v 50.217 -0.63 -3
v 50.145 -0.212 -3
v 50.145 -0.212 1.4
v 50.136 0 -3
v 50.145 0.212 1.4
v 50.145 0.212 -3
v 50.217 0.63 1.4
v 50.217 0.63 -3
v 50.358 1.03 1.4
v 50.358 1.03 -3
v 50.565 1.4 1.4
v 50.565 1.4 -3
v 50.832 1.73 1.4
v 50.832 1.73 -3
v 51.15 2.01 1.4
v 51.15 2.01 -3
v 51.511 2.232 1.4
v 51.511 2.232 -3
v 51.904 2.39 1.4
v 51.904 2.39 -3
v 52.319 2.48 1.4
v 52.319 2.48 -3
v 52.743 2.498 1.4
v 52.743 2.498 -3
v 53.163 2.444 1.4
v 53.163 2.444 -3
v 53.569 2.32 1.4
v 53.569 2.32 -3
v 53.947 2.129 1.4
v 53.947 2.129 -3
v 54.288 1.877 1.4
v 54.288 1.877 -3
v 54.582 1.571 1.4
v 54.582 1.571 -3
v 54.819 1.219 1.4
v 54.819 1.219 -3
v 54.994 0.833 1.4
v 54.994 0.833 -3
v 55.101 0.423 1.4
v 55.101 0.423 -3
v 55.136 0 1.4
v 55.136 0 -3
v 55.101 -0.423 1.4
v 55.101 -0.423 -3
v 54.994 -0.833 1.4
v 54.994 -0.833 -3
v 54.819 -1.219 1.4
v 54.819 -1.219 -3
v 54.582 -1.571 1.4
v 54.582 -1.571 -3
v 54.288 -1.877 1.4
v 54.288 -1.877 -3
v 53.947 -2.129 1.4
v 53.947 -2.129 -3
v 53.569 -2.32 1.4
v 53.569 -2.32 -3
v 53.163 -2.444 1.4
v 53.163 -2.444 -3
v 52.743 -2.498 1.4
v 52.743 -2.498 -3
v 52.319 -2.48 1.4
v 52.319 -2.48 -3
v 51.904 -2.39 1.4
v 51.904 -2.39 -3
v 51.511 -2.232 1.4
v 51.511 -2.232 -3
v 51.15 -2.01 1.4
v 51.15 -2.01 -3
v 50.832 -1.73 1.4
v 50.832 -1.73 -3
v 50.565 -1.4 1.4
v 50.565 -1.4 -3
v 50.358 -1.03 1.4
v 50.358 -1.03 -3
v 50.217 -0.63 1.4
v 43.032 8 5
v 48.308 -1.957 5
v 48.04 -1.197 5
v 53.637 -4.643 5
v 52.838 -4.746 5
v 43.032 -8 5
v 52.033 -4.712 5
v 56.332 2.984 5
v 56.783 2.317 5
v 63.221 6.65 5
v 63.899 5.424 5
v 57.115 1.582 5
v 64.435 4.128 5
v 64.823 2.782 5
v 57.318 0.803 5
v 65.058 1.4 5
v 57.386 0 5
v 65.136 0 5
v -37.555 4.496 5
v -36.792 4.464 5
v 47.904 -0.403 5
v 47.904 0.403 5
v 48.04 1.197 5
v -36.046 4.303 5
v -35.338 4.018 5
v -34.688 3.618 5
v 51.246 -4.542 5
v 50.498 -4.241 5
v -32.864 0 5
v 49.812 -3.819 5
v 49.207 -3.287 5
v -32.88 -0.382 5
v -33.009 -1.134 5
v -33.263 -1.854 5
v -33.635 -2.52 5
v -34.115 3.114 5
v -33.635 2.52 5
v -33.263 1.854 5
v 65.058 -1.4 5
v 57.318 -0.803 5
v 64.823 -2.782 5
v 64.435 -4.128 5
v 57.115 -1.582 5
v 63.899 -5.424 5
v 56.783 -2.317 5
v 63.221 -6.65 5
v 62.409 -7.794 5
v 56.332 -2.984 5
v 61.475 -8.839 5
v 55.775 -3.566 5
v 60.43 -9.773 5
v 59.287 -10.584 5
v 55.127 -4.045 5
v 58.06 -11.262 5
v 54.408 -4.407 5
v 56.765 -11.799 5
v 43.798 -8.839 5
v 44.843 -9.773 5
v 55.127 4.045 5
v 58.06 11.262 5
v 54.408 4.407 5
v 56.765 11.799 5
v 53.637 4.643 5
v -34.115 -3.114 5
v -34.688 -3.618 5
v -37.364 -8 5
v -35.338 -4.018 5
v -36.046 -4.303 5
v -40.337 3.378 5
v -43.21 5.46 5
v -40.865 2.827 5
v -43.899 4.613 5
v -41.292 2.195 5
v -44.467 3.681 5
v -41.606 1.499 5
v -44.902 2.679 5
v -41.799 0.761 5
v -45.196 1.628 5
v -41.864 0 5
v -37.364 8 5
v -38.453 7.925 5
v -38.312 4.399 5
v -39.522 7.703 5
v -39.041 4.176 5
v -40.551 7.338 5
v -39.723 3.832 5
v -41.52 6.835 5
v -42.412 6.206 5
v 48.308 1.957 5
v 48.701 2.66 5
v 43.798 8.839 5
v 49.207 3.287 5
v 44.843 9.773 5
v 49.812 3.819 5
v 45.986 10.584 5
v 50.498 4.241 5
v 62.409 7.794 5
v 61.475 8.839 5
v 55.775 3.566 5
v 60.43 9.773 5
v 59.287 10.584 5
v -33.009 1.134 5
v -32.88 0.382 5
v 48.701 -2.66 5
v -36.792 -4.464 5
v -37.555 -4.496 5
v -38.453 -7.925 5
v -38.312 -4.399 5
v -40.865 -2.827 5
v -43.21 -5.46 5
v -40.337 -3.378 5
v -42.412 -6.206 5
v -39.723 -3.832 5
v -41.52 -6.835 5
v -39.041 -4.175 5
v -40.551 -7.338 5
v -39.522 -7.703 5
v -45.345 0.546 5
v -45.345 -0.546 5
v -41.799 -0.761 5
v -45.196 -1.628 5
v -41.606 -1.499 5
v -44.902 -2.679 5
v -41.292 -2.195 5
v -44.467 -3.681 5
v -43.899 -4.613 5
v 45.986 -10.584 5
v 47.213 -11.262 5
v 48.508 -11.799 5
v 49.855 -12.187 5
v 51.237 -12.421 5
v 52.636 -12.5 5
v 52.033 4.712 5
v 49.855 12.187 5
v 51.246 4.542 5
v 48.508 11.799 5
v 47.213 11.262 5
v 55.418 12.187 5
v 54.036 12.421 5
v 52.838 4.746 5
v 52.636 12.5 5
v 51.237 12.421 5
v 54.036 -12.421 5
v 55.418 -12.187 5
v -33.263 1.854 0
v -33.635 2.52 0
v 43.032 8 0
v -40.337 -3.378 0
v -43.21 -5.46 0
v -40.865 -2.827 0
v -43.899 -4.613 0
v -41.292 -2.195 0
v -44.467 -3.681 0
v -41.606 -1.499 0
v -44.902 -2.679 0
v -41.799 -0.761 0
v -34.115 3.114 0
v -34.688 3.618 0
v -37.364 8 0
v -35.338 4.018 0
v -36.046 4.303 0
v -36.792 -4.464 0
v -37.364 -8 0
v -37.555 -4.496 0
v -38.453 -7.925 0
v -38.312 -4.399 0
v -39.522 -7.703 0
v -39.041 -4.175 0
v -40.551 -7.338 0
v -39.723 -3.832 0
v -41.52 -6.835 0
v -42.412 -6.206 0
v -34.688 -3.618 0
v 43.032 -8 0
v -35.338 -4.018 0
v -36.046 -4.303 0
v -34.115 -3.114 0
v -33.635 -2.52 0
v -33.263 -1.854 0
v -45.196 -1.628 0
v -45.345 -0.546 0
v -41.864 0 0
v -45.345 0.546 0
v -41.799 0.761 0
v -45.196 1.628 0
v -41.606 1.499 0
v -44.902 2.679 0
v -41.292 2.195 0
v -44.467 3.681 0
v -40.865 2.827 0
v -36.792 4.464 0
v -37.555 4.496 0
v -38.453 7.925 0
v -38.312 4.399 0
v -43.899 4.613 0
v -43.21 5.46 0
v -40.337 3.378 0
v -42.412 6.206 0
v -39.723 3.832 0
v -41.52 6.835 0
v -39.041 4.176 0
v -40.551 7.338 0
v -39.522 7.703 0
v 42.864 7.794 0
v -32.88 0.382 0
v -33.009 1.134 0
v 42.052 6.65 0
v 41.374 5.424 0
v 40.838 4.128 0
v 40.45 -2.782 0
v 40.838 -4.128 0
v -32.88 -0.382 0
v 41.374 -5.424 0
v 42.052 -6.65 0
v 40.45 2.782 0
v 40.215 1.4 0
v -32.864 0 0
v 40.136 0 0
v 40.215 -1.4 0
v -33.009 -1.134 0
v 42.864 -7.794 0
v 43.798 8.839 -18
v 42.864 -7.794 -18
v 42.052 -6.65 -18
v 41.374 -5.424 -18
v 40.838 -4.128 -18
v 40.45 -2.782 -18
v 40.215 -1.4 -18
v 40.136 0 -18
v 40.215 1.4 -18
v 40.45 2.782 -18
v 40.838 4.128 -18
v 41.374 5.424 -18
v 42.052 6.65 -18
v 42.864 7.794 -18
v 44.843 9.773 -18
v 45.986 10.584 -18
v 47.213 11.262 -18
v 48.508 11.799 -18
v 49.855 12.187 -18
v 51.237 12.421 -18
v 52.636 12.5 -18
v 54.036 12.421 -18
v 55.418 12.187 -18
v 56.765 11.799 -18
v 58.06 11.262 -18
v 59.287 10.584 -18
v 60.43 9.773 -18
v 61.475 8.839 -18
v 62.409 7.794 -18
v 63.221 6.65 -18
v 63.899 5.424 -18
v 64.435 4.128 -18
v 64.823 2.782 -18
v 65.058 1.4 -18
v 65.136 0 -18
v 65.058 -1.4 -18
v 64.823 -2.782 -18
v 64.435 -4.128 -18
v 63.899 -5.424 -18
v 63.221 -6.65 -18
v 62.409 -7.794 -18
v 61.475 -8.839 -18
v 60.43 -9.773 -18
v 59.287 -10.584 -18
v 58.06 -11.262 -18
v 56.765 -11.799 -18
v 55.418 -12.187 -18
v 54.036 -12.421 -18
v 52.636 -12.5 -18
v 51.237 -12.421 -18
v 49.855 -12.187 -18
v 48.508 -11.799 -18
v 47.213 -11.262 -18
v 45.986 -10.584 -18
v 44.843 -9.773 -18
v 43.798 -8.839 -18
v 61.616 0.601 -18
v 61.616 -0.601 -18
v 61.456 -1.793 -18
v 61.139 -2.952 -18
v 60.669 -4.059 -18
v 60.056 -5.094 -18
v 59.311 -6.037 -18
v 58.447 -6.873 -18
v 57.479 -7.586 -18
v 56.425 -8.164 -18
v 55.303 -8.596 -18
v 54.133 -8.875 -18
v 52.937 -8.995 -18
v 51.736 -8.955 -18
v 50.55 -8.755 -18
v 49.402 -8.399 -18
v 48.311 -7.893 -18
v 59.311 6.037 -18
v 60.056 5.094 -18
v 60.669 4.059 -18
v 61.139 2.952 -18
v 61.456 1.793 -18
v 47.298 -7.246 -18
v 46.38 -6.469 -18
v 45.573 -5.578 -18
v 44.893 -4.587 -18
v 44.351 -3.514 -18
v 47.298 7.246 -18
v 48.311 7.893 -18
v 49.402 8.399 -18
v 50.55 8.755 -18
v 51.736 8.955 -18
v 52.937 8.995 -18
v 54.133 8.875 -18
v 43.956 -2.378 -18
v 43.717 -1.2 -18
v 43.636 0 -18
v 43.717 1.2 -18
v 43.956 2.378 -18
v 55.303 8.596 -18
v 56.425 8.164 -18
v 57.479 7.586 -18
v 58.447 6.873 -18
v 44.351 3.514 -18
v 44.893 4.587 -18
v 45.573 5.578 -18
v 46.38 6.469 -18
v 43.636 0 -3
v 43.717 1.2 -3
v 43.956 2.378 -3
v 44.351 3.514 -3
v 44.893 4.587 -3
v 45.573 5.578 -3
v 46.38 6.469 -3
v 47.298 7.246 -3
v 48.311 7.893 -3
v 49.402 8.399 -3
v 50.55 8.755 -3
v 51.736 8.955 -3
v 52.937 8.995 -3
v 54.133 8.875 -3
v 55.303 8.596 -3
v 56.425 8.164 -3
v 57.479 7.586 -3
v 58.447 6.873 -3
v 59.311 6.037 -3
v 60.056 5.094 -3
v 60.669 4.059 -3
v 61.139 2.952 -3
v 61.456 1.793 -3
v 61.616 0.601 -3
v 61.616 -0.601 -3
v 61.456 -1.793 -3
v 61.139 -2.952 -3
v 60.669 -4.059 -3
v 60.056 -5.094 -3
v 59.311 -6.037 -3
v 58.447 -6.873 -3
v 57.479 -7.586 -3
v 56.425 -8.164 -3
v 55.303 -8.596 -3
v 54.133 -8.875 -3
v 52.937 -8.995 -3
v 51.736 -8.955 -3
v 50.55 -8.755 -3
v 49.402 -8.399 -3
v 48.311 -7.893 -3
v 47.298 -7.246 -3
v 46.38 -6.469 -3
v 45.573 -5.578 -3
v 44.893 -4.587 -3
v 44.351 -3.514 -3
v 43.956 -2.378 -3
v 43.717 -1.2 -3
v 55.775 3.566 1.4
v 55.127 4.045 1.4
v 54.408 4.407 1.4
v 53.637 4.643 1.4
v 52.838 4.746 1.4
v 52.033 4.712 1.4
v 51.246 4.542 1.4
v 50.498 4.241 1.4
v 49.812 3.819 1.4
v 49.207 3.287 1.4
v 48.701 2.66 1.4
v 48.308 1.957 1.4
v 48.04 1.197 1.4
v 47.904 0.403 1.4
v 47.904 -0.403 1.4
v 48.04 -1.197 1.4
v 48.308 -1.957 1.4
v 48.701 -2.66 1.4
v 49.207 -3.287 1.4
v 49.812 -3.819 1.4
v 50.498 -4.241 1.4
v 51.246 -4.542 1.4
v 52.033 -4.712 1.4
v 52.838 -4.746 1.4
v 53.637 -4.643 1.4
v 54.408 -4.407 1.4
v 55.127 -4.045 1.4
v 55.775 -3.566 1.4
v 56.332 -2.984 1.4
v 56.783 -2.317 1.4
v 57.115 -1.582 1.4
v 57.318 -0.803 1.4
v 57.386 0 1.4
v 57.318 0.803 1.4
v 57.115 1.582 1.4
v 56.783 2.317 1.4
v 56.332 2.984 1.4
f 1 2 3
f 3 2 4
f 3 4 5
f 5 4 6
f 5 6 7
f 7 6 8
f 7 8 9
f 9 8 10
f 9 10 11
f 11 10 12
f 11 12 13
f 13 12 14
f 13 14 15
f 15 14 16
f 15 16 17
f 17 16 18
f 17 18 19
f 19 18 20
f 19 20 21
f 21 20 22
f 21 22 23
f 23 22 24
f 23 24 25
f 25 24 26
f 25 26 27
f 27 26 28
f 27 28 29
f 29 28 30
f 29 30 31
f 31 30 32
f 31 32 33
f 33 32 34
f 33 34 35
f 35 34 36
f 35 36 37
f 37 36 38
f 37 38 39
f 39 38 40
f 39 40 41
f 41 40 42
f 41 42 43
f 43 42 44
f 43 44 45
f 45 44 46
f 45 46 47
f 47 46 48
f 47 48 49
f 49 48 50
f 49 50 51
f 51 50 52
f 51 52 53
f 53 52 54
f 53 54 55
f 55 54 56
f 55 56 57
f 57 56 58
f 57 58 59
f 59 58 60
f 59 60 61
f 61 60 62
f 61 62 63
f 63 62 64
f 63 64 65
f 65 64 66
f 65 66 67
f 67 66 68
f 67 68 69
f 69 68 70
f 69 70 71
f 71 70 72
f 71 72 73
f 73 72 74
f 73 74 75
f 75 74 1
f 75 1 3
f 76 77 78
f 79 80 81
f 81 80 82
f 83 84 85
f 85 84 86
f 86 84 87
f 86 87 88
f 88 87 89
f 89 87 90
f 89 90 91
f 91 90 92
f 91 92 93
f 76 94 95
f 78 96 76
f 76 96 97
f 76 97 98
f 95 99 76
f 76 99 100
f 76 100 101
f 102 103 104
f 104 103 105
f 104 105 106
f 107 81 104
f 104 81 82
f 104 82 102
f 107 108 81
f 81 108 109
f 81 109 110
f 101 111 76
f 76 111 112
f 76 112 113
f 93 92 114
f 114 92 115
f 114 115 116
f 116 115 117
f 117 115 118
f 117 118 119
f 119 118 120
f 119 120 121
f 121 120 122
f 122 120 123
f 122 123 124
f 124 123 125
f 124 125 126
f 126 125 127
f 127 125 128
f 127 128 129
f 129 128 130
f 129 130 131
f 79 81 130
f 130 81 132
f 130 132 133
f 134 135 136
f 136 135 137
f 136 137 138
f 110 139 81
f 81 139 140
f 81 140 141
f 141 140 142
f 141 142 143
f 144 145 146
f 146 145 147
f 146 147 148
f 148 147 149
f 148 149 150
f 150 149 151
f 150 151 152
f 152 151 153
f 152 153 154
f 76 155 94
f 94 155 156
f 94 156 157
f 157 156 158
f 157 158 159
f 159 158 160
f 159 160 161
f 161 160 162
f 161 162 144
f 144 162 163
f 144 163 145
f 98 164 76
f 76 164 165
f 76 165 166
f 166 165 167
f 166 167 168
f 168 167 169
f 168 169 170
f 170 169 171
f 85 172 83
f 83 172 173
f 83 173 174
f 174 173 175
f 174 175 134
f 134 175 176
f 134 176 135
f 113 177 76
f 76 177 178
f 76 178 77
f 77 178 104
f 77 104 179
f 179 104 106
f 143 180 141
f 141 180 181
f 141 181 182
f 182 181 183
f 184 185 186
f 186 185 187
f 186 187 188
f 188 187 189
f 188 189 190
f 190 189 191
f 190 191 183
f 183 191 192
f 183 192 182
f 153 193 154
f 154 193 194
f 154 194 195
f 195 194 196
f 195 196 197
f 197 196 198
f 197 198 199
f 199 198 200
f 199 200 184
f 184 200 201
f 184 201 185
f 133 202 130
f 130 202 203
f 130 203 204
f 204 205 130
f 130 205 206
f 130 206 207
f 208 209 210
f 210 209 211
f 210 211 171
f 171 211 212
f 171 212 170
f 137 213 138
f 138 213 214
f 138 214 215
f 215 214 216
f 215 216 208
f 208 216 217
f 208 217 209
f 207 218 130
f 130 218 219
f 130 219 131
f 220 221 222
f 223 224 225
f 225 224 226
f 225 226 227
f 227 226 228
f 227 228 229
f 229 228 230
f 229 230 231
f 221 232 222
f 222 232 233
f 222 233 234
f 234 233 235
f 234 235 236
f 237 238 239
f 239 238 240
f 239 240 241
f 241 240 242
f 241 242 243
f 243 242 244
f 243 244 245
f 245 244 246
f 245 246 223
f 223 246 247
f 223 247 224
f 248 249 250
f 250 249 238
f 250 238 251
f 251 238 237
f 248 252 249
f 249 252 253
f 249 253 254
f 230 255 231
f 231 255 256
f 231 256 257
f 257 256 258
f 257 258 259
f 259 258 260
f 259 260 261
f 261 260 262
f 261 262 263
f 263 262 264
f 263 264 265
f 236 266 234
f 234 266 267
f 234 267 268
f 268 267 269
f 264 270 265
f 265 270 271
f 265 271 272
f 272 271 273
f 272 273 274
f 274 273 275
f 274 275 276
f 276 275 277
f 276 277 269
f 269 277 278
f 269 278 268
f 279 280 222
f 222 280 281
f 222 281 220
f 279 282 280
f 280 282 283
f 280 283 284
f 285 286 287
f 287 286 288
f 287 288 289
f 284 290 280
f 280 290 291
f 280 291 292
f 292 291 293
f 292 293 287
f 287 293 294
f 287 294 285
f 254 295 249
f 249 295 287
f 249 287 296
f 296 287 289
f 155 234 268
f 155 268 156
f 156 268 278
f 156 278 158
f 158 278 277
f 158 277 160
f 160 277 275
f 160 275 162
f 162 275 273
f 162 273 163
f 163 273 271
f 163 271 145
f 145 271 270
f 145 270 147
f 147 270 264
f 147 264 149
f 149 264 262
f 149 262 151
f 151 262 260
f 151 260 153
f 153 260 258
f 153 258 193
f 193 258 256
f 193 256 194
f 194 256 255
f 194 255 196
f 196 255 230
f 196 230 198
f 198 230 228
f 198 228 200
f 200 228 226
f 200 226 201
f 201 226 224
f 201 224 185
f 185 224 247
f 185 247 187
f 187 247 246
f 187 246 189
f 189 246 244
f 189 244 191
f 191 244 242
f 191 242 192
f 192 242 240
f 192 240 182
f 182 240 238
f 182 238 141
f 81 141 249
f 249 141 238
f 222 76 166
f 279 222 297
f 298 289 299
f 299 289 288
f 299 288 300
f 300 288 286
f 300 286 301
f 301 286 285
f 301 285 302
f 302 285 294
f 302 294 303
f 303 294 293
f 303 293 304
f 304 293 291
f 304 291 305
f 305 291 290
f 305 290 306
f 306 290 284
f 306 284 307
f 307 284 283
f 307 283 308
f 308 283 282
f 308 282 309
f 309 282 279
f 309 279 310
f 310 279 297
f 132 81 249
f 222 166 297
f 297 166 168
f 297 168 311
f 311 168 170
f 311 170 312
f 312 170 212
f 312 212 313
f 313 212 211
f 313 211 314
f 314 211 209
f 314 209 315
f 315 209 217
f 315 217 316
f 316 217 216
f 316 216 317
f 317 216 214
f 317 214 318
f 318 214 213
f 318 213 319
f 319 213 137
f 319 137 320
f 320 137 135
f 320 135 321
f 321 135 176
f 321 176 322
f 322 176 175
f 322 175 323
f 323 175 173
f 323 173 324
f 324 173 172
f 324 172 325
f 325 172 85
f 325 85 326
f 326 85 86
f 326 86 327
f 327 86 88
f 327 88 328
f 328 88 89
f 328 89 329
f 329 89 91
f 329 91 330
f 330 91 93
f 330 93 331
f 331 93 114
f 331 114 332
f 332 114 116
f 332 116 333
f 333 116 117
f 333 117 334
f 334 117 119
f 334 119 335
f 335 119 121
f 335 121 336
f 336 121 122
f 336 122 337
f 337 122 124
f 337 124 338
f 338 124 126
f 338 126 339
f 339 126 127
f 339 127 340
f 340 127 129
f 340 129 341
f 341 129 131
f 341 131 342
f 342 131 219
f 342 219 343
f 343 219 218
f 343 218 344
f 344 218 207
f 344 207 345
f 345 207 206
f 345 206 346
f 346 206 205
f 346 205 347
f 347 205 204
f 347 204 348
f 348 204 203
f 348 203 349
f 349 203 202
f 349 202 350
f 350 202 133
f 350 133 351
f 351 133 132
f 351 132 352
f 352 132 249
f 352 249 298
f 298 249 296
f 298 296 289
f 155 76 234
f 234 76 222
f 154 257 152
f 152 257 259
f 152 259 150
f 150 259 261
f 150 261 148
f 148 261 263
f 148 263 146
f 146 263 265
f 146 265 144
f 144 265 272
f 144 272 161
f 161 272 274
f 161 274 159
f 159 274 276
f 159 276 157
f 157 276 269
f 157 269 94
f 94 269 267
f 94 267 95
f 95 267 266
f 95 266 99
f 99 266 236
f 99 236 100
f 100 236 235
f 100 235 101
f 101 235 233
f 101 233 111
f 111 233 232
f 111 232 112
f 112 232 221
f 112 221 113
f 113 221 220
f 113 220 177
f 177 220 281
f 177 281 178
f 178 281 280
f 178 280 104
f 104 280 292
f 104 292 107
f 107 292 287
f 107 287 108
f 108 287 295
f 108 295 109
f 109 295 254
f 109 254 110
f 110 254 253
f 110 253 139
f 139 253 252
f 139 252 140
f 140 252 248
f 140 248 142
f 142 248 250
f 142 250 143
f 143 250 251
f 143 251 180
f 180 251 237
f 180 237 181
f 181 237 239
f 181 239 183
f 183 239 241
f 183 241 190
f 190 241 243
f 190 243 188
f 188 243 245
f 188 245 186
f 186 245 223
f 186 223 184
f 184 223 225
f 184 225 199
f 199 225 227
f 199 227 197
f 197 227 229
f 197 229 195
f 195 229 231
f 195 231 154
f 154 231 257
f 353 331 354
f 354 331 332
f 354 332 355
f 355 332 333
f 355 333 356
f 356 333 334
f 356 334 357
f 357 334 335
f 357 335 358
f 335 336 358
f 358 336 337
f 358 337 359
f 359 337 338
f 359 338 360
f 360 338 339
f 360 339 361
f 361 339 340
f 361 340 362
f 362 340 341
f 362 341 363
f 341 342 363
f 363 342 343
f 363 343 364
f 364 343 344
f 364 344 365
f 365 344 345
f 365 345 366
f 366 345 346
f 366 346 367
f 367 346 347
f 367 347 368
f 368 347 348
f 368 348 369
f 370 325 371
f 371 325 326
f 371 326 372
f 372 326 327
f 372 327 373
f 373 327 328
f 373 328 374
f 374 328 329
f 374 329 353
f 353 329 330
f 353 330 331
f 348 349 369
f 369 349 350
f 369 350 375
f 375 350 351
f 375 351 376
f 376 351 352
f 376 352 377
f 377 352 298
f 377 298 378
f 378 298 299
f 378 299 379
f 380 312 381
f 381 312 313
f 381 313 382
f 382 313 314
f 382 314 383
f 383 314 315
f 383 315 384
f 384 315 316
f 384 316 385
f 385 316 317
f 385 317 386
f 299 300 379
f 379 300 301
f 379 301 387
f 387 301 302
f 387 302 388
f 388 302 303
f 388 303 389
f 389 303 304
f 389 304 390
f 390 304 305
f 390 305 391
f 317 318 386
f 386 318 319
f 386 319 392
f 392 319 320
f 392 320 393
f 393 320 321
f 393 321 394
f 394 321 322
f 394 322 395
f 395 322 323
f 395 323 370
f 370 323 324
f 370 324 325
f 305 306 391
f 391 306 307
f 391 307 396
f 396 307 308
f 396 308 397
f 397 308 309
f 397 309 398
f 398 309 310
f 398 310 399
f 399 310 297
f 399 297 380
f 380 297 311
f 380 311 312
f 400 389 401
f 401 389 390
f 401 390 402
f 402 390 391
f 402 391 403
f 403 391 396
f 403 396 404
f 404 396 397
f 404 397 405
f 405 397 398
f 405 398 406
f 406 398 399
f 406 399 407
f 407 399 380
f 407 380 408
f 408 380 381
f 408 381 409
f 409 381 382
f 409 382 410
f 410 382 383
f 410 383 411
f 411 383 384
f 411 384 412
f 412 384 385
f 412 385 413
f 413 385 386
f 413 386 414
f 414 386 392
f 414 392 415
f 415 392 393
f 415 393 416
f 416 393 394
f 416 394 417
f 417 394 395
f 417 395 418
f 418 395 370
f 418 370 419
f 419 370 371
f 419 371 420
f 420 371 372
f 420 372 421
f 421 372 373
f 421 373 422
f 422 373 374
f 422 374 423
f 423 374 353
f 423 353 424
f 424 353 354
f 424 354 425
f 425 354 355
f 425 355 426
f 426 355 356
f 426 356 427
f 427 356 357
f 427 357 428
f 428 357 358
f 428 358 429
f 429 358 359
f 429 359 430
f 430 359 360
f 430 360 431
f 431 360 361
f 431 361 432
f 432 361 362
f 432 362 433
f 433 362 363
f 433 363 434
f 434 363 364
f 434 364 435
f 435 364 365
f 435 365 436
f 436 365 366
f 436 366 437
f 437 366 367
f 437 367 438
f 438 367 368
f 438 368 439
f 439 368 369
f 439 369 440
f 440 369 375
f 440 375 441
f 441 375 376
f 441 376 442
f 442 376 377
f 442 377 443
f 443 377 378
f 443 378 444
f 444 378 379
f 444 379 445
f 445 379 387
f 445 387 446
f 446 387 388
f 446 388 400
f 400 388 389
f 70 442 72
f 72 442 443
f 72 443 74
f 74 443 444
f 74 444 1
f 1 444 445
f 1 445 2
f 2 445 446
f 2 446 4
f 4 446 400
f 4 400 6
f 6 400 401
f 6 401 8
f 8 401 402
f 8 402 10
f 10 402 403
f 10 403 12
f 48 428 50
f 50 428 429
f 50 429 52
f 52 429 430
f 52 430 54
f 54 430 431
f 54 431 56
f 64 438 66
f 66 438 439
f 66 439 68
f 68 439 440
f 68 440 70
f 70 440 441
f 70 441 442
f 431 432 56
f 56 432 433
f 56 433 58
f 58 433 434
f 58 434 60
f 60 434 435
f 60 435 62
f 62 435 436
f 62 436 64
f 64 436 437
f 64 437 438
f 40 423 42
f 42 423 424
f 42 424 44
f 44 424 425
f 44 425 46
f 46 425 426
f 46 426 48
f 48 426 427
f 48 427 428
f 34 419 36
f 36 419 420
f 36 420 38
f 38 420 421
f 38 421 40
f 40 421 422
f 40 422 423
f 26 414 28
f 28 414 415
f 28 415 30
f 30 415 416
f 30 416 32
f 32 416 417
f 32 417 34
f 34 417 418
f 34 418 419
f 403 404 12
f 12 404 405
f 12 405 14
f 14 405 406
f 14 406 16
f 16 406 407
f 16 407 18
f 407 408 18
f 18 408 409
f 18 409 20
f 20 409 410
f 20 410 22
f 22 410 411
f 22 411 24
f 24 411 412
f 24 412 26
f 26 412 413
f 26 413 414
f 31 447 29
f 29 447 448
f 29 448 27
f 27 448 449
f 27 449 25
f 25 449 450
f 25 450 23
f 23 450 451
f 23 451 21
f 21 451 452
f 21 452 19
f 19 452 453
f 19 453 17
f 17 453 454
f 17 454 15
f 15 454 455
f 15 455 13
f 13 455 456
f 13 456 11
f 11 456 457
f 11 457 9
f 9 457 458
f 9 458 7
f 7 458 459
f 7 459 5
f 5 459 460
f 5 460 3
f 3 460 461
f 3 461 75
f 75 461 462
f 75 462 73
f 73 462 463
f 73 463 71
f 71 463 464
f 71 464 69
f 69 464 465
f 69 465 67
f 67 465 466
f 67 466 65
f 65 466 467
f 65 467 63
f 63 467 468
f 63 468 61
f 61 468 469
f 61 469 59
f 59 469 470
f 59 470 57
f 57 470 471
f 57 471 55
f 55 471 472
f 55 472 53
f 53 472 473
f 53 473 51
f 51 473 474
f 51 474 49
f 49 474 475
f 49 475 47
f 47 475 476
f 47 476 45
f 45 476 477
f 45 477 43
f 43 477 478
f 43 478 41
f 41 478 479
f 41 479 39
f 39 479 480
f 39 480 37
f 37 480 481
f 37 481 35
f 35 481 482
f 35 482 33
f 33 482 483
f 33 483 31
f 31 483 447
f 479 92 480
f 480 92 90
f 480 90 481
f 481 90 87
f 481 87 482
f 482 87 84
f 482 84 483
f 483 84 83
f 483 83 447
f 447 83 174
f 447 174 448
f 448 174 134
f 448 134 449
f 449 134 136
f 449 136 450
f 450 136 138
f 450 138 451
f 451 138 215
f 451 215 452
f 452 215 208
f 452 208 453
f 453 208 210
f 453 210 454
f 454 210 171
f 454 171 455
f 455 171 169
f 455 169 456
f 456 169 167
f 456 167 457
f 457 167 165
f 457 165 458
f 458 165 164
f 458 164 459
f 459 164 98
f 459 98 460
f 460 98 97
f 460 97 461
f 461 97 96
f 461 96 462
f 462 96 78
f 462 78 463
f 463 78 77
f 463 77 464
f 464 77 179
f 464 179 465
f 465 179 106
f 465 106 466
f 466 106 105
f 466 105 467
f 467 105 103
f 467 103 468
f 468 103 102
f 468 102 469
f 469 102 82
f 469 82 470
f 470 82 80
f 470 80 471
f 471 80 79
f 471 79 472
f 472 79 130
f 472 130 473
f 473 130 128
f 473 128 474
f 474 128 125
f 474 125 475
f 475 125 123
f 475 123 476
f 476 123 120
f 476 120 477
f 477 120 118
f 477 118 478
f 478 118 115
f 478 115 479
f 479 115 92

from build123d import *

# Parameters (mm, degrees)
SKETCH_1_R          = 4.5
EXTRUDE_1_DEPTH     = 5
EXTRUDE_START       = 18
SKETCH_4_R          = 12.5
EXTRUDE_3_DEPTH     = 18
SKETCH_5_R          = 9
CUT_EXTRUDE_1_DEPTH = 15
CUT_EXTRUDE_2_REACH = 72.2
SKETCH_6_R          = 2.5
SKETCH_7_R          = 4.75
CUT_EXTRUDE_3_DEPTH = 3.6


with BuildPart() as part:
    # 草图1 → 凸台-拉伸1 (new body)
    with BuildSketch(Plane.XY):
        with BuildLine():
            Line((-37.363516522, 8), (43.031797122, 8))
            ThreePointArc((43.031797122, 8), (65.136483478, 0), (43.031797122, -8))
            Line((43.031797122, -8), (-37.363516522, -8))
            ThreePointArc((-37.363516522, -8), (-45.363516522, 0), (-37.363516522, 8))
        make_face()
        with Locations((-37.363516522, 0)):
            Circle(SKETCH_1_R, mode=Mode.SUBTRACT)
    extrude(amount=EXTRUDE_1_DEPTH)

    # 草图4 → 凸台-拉伸3 (add)
    with BuildSketch(Plane(origin=(0, 0, 0), x_dir=(-1, 0, 0), z_dir=(0, 0, -1)).offset(EXTRUDE_START)):
        with Locations((-52.636483478, 0)):
            Circle(SKETCH_4_R)
    extrude(amount=-EXTRUDE_3_DEPTH)

    # 草图5 → 切除-拉伸1 (cut)
    with BuildSketch(Plane(origin=(0, 0, -18), x_dir=(-1, 0, 0), z_dir=(0, 0, -1))):
        with Locations((-52.636483478, 0)):
            Circle(SKETCH_5_R)
    extrude(amount=-CUT_EXTRUDE_1_DEPTH, mode=Mode.SUBTRACT)

    # 草图6 → 切除-拉伸2 (cut, up to next)
    with BuildSketch(Plane.XY.offset(5), mode=Mode.PRIVATE) as cut_extrude_2_sk1:
        with Locations((52.636483478, 0)):
            Circle(SKETCH_6_R)
    cut_extrude_2_tool1 = extrude(cut_extrude_2_sk1.sketch, amount=-CUT_EXTRUDE_2_REACH, mode=Mode.PRIVATE) & part.part
    add(cut_extrude_2_tool1.solids().sort_by_distance((52.636483, 0, 5))[0], mode=Mode.SUBTRACT)

    # 草图7 → 切除-拉伸3 (cut)
    with BuildSketch(Plane.XY.offset(5)):
        with Locations((52.636483478, 0)):
            Circle(SKETCH_7_R)
    extrude(amount=-CUT_EXTRUDE_3_DEPTH, mode=Mode.SUBTRACT)


solid = part.part
